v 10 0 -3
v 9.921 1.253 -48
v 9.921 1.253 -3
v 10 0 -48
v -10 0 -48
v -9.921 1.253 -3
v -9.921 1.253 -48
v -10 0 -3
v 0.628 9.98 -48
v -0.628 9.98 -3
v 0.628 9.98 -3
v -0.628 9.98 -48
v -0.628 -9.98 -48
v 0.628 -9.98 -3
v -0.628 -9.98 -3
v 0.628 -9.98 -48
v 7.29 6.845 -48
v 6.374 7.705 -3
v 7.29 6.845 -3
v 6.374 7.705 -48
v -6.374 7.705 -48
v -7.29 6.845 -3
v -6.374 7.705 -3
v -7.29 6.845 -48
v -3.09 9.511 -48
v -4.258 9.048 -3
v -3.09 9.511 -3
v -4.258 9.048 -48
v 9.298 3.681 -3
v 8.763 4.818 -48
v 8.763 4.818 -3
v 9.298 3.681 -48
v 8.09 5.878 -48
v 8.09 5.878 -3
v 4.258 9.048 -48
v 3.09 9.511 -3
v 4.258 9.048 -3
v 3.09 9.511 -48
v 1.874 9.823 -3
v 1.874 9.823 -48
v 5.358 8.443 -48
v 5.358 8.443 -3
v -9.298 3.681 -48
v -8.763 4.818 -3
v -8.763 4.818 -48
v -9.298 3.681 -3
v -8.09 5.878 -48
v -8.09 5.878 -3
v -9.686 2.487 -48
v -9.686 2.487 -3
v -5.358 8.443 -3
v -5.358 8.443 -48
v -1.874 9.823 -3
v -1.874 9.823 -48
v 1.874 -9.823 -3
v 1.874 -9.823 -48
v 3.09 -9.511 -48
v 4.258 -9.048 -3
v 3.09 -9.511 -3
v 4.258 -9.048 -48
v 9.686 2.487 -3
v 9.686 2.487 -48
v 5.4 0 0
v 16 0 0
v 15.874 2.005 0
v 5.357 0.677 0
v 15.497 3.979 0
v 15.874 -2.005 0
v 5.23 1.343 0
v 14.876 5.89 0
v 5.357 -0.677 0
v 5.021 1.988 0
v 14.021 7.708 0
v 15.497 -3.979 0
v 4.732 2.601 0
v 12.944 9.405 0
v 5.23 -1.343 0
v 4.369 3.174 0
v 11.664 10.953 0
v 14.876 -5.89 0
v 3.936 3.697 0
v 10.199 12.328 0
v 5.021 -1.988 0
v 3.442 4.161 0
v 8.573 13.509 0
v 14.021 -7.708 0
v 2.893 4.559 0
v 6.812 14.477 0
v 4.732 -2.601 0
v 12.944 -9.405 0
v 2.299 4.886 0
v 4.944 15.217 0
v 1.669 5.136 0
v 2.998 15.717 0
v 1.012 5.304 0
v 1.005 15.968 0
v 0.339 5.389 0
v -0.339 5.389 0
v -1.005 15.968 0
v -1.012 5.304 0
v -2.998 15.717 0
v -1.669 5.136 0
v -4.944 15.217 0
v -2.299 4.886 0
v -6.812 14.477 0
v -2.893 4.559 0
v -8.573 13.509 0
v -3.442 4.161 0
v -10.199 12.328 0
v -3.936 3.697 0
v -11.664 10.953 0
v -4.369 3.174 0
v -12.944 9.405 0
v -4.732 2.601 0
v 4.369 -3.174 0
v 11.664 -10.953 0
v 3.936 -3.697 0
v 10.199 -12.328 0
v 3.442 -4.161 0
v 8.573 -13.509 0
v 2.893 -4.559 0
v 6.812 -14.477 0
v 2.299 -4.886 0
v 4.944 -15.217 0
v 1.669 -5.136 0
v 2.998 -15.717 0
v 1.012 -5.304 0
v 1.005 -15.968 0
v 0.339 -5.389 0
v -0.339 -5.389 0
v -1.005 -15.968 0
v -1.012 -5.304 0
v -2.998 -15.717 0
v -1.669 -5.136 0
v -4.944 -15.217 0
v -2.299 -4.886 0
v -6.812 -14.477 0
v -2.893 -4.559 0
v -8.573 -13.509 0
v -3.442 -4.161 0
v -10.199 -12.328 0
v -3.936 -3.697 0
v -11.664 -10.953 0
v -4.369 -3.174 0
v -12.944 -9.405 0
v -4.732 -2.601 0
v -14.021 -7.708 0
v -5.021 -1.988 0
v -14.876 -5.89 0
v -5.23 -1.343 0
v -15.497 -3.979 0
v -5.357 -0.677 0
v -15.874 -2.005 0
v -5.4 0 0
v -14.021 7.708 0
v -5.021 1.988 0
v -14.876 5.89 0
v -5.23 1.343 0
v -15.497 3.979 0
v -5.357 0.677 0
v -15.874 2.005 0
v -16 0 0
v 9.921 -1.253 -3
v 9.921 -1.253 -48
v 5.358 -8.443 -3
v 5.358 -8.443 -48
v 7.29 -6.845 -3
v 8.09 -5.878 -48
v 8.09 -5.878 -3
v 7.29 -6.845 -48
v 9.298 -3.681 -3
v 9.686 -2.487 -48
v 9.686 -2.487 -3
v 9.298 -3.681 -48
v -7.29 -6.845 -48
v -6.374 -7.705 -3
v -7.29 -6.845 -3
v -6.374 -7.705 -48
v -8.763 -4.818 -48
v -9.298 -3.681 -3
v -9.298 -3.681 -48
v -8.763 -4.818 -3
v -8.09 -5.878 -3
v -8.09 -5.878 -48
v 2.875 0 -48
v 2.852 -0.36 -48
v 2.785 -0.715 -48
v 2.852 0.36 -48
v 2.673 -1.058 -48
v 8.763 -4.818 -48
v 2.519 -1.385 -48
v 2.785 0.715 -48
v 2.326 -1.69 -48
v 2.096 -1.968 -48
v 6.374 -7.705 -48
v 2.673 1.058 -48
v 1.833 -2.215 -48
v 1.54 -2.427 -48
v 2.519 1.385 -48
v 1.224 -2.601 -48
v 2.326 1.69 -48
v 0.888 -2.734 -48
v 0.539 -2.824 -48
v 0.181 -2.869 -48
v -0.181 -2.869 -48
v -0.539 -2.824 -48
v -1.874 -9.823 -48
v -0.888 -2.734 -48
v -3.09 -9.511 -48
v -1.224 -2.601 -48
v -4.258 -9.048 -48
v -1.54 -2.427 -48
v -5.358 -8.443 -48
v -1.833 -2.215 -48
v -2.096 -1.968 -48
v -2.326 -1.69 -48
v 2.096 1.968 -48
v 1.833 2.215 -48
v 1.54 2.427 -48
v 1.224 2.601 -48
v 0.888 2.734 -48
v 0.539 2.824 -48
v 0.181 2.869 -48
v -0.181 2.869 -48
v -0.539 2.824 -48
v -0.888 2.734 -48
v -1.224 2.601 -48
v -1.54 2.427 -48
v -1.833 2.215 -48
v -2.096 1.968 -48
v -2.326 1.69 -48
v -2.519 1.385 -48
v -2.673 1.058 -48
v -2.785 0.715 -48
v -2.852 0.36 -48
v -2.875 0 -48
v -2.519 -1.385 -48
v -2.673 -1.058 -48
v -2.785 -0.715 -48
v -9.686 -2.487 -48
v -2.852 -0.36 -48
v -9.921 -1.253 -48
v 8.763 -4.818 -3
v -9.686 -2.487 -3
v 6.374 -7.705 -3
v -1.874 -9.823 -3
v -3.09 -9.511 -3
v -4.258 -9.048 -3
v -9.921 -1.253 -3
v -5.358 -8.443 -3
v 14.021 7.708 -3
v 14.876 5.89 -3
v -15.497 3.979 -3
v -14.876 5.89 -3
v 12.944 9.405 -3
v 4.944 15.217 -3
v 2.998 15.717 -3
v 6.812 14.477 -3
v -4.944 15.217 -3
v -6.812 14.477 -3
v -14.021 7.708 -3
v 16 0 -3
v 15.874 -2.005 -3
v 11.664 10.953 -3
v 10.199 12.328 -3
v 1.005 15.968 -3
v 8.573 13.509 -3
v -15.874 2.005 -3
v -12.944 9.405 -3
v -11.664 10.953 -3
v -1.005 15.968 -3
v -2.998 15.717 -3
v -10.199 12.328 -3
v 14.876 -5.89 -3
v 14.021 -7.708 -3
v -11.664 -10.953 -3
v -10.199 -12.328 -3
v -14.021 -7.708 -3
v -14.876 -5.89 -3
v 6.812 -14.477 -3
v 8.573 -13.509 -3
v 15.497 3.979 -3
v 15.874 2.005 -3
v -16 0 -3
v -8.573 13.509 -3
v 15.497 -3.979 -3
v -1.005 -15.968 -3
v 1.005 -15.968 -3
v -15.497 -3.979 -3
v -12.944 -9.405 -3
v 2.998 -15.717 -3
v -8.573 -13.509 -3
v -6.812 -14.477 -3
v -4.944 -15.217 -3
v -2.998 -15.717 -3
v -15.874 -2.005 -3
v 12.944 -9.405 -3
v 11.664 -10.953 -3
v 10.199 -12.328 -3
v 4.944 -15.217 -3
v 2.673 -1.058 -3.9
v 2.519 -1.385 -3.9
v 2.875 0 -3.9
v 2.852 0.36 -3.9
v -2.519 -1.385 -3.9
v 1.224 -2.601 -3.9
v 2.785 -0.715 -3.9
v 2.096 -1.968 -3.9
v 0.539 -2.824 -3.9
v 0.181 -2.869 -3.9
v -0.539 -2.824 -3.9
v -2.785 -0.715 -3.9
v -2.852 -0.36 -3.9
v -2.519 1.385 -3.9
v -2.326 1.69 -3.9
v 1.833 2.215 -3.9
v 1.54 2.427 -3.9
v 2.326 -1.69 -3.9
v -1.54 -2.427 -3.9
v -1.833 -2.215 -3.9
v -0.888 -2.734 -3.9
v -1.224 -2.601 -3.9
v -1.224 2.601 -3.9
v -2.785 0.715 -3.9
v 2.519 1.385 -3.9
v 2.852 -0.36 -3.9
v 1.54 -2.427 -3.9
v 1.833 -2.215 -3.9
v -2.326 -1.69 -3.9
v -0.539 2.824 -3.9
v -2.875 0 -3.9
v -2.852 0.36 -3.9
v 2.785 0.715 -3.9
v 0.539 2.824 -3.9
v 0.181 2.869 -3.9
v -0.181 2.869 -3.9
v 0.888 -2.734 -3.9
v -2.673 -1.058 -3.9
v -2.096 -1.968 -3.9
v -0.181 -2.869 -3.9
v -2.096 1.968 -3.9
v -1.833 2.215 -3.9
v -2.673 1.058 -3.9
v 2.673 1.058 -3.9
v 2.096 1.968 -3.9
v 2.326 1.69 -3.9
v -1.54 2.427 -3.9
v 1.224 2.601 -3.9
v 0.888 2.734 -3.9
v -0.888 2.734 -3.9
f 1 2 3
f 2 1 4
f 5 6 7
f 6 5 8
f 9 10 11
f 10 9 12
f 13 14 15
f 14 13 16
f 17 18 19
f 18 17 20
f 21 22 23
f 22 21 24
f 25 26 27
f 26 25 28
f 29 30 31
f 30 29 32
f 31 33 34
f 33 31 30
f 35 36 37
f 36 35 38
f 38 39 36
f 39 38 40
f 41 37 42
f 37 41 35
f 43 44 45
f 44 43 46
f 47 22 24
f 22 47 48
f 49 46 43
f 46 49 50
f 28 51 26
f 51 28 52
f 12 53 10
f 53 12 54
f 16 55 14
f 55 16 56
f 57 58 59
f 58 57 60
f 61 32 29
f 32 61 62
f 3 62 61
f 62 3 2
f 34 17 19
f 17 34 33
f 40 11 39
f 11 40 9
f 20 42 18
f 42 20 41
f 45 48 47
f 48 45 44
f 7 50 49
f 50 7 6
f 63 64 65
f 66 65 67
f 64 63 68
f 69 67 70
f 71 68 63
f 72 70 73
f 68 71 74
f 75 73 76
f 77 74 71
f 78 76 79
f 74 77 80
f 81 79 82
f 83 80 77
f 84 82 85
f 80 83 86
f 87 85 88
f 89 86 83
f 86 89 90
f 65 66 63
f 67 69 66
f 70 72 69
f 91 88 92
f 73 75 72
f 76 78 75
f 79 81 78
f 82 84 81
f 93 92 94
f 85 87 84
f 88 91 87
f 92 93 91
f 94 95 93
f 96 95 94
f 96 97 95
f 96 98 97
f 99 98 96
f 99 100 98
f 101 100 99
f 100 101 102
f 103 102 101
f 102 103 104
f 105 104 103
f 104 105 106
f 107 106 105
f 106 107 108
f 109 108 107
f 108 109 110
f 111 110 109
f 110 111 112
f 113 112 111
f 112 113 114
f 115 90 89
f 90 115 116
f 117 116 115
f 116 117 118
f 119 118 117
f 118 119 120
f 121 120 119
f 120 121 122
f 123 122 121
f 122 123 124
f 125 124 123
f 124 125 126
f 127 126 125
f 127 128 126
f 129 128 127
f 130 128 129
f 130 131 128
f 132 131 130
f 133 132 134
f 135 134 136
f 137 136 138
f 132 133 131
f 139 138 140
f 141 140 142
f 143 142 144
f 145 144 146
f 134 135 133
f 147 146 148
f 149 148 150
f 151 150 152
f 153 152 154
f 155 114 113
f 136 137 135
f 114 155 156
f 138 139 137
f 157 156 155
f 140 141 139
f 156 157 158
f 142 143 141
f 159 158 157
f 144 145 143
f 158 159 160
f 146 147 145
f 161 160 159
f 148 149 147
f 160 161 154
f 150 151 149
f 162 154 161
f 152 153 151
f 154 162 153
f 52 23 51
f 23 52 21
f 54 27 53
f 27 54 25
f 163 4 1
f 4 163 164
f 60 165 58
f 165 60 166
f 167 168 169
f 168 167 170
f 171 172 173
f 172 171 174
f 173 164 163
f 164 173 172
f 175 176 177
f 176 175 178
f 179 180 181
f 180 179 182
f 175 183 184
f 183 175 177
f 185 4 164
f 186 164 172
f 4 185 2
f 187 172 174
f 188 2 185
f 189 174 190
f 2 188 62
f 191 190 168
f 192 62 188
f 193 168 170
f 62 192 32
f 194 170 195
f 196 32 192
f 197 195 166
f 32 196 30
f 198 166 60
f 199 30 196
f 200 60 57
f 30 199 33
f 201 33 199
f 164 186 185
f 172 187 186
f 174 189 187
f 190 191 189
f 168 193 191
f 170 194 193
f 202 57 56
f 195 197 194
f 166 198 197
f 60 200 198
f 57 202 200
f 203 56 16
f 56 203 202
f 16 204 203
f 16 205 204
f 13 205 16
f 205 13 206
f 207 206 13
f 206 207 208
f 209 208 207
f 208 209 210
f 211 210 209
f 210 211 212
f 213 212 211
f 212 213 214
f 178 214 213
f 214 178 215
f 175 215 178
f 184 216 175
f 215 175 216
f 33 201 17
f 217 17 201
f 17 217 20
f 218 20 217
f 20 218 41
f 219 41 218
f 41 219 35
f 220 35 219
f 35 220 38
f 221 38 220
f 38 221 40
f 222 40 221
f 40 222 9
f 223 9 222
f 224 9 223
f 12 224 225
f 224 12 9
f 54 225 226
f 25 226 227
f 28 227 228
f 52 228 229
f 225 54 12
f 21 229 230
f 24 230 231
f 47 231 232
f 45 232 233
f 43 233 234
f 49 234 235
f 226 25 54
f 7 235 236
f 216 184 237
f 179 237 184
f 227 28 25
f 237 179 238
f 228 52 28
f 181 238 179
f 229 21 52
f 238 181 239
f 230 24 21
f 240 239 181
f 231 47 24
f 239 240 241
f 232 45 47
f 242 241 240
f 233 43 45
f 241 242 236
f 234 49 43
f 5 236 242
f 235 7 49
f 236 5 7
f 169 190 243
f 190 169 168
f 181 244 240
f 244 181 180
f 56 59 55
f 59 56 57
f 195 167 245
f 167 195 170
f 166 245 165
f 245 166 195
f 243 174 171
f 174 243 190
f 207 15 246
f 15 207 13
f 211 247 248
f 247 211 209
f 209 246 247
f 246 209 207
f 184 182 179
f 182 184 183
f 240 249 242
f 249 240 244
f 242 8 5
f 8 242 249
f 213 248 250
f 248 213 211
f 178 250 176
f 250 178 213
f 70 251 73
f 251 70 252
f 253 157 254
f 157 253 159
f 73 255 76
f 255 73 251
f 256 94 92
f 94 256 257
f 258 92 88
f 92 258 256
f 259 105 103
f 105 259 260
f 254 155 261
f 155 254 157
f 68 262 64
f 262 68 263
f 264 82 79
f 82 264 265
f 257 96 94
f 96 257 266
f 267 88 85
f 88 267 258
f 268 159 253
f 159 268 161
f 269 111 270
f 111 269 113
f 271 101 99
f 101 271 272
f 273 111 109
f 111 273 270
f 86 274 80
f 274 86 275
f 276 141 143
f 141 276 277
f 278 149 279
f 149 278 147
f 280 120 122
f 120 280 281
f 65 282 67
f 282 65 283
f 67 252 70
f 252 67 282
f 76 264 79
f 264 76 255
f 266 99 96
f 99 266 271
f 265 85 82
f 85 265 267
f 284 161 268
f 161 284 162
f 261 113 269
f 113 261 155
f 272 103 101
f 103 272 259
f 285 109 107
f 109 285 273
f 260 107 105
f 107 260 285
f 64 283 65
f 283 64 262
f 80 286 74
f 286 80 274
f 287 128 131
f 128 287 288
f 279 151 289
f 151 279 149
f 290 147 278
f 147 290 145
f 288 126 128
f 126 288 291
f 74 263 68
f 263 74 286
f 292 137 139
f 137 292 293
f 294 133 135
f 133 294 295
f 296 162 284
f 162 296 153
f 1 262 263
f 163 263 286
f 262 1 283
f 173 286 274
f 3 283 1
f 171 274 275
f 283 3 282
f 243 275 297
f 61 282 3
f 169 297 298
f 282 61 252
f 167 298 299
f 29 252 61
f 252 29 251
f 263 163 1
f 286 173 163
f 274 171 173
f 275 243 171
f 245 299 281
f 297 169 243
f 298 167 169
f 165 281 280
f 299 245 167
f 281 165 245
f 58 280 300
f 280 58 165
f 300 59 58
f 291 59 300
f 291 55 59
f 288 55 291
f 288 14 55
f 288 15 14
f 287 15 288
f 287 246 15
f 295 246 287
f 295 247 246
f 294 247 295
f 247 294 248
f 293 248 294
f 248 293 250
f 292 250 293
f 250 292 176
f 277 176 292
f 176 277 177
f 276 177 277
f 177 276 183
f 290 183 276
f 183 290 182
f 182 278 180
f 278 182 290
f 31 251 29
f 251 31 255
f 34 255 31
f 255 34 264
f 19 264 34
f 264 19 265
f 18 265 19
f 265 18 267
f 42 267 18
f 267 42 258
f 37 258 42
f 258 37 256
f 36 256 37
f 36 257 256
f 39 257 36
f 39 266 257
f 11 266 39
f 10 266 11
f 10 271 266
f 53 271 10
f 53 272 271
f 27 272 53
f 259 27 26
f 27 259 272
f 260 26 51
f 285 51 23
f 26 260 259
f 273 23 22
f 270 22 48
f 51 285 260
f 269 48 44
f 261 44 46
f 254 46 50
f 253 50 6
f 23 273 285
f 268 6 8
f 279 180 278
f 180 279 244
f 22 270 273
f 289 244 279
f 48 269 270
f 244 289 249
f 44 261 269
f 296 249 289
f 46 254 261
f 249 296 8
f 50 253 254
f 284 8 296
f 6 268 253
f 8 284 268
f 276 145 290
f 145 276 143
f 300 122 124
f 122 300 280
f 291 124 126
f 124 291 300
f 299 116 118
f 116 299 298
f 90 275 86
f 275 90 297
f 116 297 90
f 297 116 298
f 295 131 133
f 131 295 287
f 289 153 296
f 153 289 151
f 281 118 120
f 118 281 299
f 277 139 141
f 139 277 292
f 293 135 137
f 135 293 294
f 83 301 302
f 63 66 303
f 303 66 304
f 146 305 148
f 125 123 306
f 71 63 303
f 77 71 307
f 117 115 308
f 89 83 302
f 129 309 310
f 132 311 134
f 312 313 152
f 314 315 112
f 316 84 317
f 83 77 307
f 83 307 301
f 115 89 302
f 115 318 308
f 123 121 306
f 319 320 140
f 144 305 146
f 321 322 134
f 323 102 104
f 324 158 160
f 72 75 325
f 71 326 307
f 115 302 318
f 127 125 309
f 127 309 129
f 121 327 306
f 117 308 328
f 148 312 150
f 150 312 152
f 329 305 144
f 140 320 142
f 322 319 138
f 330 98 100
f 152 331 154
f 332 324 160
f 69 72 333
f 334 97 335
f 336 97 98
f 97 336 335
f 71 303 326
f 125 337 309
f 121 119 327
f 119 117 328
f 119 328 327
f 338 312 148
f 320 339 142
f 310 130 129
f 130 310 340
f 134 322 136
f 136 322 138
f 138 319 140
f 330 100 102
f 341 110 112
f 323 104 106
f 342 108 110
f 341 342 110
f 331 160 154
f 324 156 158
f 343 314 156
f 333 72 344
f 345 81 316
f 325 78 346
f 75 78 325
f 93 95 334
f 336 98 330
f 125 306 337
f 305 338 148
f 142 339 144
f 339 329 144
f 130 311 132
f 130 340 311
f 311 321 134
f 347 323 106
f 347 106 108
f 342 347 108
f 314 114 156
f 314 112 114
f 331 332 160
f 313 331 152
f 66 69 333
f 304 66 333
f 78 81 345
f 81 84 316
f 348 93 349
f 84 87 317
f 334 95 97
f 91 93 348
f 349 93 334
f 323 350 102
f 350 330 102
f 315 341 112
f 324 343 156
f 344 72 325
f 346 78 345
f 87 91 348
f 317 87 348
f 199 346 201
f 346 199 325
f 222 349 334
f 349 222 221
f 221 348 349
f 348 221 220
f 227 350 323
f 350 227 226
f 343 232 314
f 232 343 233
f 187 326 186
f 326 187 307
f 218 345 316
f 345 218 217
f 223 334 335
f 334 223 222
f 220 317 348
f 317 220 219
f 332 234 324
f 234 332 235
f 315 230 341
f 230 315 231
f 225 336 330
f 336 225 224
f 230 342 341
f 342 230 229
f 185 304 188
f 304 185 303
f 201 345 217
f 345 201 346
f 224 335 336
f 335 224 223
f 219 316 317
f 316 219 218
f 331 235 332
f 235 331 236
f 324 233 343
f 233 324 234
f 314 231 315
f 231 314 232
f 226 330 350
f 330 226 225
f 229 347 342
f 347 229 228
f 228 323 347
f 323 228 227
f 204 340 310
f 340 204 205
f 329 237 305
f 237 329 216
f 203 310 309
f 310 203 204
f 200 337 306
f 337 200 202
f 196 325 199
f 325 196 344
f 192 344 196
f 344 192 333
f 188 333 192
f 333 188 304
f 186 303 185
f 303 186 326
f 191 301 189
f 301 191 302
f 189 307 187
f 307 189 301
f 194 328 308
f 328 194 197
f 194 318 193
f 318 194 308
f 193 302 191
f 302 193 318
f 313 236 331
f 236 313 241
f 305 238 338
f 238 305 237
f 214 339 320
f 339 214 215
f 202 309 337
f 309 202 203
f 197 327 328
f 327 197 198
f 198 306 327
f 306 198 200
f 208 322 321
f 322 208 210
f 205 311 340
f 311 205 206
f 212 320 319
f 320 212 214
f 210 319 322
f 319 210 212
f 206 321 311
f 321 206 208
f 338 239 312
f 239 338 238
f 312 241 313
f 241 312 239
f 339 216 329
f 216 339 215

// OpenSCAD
$fn = 50;


difference() {
	union() {
		translate(v = [0, 0, -48.0000000000]) {
			cylinder(h = 48, r = 10.0000000000);
		}
		translate(v = [0, 0, -3.0000000000]) {
			cylinder(h = 3, r = 16.0000000000);
		}
	}
	union() {
		translate(v = [0, 0, 0]) {
			rotate(a = [0, 0, 0]) {
				difference() {
					union() {
						#translate(v = [0, 0, -48.0000000000]) {
							cylinder(h = 48, r = 2.6000000000);
						}
						#translate(v = [0, 0, -3.9000000000]) {
							cylinder(h = 3.9000000000, r1 = 2.8750000000, r2 = 5.4000000000);
						}
						#translate(v = [0, 0, -48.0000000000]) {
							cylinder(h = 48, r = 2.8750000000);
						}
						#translate(v = [0, 0, -48.0000000000]) {
							cylinder(h = 48, r = 2.6000000000);
						}
					}
					union();
				}
			}
		}
	}
}
